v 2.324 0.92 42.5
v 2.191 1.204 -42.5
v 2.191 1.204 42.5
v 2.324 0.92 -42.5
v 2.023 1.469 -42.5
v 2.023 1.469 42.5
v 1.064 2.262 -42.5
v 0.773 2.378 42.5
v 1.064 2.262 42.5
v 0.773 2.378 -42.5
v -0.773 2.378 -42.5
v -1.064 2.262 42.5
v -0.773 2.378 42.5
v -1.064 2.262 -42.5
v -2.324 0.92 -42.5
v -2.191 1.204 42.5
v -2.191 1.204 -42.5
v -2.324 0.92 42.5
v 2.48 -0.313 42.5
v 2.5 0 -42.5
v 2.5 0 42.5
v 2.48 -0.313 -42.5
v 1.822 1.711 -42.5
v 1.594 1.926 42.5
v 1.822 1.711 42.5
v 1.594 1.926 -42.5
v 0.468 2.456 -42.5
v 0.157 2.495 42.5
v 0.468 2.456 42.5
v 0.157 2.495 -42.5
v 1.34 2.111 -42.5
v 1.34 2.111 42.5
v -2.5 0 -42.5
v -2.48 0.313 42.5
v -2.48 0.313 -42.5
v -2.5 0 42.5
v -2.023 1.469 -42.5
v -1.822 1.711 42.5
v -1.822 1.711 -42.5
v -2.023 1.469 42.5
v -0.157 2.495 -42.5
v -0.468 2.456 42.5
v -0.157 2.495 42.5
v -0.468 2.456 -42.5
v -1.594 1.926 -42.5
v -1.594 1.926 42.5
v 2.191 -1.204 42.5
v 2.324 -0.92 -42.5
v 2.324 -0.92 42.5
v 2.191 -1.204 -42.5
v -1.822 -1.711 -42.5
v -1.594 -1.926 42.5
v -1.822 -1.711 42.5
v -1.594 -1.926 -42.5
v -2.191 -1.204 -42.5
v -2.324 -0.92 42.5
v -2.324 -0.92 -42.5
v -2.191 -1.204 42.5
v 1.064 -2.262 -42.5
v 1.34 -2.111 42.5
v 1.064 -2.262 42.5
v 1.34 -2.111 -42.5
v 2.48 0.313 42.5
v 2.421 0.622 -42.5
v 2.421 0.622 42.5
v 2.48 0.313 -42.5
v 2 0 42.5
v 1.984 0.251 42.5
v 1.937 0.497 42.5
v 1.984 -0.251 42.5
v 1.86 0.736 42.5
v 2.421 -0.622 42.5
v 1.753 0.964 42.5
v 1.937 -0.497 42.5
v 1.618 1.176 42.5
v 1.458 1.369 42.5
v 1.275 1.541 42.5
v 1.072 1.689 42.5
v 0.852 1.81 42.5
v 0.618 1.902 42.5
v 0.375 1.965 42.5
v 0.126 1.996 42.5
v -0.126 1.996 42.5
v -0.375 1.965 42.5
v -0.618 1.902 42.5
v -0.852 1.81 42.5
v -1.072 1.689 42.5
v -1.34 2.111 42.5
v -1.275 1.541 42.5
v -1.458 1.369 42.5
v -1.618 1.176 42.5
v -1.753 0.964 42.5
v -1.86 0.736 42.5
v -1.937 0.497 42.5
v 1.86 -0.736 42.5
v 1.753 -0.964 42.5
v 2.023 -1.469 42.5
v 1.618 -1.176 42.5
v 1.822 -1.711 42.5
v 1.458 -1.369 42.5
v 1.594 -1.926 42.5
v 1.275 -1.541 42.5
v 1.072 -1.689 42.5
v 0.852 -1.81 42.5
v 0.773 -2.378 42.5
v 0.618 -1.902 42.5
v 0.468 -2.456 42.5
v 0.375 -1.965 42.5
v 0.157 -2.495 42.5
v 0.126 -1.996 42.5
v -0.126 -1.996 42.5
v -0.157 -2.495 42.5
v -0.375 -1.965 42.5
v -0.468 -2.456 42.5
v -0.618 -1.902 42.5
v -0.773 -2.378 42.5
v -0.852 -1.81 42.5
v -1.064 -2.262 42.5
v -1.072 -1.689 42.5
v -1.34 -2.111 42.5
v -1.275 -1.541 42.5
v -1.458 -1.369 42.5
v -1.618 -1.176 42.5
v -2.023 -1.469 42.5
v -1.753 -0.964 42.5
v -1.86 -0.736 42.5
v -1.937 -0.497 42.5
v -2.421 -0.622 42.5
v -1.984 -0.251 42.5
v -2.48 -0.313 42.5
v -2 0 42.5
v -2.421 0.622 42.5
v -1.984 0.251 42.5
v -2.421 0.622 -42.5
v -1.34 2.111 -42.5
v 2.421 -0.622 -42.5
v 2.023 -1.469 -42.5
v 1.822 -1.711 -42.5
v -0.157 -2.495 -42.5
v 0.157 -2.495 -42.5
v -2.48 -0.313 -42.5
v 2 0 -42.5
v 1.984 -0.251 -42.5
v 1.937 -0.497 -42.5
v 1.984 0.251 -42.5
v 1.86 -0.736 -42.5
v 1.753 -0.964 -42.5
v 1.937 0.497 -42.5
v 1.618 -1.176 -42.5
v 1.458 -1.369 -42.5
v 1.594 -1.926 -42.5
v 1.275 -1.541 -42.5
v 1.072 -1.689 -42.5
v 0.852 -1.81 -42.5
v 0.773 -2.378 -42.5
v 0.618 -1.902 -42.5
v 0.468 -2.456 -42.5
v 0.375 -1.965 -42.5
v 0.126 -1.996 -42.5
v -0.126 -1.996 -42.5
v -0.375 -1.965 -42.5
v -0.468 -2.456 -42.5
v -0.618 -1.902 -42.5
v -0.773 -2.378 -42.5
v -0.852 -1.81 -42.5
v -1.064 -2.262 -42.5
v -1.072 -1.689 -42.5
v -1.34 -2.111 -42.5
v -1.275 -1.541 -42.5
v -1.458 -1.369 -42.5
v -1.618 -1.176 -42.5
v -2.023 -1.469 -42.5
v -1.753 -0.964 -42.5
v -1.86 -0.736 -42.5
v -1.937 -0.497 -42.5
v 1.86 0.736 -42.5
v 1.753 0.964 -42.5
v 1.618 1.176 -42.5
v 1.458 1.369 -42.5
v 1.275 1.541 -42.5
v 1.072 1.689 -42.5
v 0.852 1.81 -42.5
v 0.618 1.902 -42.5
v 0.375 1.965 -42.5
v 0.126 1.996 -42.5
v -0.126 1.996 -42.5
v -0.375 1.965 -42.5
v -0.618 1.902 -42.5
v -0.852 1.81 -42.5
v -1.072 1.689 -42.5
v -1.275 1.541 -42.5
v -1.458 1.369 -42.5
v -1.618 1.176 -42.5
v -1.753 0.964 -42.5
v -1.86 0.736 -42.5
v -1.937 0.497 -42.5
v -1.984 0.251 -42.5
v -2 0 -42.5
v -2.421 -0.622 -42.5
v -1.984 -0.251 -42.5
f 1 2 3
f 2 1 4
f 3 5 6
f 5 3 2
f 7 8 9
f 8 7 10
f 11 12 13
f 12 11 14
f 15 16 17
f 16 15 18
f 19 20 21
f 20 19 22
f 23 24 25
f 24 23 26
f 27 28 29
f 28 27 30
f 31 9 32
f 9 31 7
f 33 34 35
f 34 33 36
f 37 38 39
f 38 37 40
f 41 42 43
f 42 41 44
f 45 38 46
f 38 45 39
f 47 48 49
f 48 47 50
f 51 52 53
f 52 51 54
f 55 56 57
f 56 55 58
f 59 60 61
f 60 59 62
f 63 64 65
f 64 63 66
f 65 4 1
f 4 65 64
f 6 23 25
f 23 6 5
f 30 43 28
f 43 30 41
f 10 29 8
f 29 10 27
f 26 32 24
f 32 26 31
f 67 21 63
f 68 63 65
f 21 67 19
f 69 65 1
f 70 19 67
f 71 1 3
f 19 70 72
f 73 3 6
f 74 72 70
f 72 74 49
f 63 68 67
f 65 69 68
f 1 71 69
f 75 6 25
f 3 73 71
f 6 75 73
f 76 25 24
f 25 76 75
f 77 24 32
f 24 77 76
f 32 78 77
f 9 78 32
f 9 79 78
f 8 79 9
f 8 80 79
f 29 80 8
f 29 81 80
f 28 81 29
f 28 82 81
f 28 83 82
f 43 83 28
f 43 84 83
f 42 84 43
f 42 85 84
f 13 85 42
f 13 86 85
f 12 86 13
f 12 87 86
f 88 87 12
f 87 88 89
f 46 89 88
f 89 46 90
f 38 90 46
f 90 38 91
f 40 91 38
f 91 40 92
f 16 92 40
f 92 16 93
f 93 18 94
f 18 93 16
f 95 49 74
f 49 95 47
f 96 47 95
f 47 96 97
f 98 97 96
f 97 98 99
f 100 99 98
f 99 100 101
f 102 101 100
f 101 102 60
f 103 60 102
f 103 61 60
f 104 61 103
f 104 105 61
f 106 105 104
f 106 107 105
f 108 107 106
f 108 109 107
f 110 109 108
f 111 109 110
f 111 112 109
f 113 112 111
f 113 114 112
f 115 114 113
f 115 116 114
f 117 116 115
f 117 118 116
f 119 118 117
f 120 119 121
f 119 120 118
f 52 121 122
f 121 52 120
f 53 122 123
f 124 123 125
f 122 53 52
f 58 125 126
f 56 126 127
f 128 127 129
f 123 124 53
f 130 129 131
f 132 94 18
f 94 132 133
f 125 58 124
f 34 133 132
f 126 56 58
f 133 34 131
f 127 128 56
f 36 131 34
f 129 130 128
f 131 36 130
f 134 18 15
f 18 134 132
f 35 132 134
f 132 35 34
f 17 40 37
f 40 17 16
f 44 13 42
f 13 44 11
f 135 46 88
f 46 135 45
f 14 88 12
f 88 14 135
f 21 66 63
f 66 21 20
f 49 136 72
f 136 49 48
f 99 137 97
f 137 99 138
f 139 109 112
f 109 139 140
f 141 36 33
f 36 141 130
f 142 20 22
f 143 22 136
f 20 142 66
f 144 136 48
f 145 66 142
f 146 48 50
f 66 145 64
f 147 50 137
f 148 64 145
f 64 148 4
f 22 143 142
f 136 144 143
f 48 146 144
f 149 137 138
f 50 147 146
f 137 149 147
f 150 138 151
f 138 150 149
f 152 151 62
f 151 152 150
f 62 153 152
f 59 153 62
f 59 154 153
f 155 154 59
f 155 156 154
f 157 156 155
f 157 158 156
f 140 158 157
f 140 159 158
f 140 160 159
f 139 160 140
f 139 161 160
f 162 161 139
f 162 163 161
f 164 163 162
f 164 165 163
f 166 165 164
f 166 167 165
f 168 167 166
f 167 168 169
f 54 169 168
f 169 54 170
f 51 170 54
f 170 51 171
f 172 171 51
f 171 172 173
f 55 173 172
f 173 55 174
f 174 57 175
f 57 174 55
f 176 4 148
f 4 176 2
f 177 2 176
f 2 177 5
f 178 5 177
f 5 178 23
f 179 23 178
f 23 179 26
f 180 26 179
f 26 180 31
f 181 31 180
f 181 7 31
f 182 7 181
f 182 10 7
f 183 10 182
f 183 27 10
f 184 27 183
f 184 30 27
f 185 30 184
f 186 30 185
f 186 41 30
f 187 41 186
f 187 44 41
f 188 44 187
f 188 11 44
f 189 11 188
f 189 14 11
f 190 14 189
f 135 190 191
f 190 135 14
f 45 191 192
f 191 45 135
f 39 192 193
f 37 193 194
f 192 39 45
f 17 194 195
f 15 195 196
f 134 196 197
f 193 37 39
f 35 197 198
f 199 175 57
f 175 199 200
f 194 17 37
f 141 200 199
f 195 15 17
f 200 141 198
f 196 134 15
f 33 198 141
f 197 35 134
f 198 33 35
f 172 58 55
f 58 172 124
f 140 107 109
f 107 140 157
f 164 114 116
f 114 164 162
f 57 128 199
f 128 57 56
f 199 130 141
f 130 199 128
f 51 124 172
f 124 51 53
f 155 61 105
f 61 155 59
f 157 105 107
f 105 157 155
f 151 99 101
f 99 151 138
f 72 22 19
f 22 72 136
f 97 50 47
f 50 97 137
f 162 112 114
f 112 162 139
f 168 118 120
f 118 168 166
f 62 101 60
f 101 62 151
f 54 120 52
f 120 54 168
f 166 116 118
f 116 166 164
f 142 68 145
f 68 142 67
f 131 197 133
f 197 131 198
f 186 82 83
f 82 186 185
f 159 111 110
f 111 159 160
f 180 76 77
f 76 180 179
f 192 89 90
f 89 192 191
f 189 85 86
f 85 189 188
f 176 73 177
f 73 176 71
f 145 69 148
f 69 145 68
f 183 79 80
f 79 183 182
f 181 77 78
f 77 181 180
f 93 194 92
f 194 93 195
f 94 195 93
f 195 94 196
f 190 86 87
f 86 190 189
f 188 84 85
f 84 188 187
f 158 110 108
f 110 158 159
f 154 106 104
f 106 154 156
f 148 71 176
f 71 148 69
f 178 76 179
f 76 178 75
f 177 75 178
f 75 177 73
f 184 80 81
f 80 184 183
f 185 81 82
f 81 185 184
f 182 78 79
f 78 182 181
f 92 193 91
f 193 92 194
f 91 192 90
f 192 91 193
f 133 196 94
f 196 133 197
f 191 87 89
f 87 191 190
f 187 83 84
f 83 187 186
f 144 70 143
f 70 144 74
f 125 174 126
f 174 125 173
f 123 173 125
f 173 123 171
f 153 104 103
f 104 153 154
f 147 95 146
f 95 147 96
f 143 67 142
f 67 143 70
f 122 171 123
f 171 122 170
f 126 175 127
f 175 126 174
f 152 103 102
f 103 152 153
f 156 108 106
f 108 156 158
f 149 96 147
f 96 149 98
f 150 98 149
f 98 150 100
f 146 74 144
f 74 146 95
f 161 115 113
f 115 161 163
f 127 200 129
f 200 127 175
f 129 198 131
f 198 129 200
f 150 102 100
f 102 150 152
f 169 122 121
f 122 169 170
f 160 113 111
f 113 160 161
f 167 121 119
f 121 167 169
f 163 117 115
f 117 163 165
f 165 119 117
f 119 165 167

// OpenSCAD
$fn = 50;


difference() {
	union() {
		translate(v = [0, 0, -42.5000000000]) {
			cylinder(h = 85, r = 2.5000000000);
		}
	}
	union() {
		translate(v = [0, 0, -100.0000000000]) {
			cylinder(h = 200, r = 2);
		}
	}
}
